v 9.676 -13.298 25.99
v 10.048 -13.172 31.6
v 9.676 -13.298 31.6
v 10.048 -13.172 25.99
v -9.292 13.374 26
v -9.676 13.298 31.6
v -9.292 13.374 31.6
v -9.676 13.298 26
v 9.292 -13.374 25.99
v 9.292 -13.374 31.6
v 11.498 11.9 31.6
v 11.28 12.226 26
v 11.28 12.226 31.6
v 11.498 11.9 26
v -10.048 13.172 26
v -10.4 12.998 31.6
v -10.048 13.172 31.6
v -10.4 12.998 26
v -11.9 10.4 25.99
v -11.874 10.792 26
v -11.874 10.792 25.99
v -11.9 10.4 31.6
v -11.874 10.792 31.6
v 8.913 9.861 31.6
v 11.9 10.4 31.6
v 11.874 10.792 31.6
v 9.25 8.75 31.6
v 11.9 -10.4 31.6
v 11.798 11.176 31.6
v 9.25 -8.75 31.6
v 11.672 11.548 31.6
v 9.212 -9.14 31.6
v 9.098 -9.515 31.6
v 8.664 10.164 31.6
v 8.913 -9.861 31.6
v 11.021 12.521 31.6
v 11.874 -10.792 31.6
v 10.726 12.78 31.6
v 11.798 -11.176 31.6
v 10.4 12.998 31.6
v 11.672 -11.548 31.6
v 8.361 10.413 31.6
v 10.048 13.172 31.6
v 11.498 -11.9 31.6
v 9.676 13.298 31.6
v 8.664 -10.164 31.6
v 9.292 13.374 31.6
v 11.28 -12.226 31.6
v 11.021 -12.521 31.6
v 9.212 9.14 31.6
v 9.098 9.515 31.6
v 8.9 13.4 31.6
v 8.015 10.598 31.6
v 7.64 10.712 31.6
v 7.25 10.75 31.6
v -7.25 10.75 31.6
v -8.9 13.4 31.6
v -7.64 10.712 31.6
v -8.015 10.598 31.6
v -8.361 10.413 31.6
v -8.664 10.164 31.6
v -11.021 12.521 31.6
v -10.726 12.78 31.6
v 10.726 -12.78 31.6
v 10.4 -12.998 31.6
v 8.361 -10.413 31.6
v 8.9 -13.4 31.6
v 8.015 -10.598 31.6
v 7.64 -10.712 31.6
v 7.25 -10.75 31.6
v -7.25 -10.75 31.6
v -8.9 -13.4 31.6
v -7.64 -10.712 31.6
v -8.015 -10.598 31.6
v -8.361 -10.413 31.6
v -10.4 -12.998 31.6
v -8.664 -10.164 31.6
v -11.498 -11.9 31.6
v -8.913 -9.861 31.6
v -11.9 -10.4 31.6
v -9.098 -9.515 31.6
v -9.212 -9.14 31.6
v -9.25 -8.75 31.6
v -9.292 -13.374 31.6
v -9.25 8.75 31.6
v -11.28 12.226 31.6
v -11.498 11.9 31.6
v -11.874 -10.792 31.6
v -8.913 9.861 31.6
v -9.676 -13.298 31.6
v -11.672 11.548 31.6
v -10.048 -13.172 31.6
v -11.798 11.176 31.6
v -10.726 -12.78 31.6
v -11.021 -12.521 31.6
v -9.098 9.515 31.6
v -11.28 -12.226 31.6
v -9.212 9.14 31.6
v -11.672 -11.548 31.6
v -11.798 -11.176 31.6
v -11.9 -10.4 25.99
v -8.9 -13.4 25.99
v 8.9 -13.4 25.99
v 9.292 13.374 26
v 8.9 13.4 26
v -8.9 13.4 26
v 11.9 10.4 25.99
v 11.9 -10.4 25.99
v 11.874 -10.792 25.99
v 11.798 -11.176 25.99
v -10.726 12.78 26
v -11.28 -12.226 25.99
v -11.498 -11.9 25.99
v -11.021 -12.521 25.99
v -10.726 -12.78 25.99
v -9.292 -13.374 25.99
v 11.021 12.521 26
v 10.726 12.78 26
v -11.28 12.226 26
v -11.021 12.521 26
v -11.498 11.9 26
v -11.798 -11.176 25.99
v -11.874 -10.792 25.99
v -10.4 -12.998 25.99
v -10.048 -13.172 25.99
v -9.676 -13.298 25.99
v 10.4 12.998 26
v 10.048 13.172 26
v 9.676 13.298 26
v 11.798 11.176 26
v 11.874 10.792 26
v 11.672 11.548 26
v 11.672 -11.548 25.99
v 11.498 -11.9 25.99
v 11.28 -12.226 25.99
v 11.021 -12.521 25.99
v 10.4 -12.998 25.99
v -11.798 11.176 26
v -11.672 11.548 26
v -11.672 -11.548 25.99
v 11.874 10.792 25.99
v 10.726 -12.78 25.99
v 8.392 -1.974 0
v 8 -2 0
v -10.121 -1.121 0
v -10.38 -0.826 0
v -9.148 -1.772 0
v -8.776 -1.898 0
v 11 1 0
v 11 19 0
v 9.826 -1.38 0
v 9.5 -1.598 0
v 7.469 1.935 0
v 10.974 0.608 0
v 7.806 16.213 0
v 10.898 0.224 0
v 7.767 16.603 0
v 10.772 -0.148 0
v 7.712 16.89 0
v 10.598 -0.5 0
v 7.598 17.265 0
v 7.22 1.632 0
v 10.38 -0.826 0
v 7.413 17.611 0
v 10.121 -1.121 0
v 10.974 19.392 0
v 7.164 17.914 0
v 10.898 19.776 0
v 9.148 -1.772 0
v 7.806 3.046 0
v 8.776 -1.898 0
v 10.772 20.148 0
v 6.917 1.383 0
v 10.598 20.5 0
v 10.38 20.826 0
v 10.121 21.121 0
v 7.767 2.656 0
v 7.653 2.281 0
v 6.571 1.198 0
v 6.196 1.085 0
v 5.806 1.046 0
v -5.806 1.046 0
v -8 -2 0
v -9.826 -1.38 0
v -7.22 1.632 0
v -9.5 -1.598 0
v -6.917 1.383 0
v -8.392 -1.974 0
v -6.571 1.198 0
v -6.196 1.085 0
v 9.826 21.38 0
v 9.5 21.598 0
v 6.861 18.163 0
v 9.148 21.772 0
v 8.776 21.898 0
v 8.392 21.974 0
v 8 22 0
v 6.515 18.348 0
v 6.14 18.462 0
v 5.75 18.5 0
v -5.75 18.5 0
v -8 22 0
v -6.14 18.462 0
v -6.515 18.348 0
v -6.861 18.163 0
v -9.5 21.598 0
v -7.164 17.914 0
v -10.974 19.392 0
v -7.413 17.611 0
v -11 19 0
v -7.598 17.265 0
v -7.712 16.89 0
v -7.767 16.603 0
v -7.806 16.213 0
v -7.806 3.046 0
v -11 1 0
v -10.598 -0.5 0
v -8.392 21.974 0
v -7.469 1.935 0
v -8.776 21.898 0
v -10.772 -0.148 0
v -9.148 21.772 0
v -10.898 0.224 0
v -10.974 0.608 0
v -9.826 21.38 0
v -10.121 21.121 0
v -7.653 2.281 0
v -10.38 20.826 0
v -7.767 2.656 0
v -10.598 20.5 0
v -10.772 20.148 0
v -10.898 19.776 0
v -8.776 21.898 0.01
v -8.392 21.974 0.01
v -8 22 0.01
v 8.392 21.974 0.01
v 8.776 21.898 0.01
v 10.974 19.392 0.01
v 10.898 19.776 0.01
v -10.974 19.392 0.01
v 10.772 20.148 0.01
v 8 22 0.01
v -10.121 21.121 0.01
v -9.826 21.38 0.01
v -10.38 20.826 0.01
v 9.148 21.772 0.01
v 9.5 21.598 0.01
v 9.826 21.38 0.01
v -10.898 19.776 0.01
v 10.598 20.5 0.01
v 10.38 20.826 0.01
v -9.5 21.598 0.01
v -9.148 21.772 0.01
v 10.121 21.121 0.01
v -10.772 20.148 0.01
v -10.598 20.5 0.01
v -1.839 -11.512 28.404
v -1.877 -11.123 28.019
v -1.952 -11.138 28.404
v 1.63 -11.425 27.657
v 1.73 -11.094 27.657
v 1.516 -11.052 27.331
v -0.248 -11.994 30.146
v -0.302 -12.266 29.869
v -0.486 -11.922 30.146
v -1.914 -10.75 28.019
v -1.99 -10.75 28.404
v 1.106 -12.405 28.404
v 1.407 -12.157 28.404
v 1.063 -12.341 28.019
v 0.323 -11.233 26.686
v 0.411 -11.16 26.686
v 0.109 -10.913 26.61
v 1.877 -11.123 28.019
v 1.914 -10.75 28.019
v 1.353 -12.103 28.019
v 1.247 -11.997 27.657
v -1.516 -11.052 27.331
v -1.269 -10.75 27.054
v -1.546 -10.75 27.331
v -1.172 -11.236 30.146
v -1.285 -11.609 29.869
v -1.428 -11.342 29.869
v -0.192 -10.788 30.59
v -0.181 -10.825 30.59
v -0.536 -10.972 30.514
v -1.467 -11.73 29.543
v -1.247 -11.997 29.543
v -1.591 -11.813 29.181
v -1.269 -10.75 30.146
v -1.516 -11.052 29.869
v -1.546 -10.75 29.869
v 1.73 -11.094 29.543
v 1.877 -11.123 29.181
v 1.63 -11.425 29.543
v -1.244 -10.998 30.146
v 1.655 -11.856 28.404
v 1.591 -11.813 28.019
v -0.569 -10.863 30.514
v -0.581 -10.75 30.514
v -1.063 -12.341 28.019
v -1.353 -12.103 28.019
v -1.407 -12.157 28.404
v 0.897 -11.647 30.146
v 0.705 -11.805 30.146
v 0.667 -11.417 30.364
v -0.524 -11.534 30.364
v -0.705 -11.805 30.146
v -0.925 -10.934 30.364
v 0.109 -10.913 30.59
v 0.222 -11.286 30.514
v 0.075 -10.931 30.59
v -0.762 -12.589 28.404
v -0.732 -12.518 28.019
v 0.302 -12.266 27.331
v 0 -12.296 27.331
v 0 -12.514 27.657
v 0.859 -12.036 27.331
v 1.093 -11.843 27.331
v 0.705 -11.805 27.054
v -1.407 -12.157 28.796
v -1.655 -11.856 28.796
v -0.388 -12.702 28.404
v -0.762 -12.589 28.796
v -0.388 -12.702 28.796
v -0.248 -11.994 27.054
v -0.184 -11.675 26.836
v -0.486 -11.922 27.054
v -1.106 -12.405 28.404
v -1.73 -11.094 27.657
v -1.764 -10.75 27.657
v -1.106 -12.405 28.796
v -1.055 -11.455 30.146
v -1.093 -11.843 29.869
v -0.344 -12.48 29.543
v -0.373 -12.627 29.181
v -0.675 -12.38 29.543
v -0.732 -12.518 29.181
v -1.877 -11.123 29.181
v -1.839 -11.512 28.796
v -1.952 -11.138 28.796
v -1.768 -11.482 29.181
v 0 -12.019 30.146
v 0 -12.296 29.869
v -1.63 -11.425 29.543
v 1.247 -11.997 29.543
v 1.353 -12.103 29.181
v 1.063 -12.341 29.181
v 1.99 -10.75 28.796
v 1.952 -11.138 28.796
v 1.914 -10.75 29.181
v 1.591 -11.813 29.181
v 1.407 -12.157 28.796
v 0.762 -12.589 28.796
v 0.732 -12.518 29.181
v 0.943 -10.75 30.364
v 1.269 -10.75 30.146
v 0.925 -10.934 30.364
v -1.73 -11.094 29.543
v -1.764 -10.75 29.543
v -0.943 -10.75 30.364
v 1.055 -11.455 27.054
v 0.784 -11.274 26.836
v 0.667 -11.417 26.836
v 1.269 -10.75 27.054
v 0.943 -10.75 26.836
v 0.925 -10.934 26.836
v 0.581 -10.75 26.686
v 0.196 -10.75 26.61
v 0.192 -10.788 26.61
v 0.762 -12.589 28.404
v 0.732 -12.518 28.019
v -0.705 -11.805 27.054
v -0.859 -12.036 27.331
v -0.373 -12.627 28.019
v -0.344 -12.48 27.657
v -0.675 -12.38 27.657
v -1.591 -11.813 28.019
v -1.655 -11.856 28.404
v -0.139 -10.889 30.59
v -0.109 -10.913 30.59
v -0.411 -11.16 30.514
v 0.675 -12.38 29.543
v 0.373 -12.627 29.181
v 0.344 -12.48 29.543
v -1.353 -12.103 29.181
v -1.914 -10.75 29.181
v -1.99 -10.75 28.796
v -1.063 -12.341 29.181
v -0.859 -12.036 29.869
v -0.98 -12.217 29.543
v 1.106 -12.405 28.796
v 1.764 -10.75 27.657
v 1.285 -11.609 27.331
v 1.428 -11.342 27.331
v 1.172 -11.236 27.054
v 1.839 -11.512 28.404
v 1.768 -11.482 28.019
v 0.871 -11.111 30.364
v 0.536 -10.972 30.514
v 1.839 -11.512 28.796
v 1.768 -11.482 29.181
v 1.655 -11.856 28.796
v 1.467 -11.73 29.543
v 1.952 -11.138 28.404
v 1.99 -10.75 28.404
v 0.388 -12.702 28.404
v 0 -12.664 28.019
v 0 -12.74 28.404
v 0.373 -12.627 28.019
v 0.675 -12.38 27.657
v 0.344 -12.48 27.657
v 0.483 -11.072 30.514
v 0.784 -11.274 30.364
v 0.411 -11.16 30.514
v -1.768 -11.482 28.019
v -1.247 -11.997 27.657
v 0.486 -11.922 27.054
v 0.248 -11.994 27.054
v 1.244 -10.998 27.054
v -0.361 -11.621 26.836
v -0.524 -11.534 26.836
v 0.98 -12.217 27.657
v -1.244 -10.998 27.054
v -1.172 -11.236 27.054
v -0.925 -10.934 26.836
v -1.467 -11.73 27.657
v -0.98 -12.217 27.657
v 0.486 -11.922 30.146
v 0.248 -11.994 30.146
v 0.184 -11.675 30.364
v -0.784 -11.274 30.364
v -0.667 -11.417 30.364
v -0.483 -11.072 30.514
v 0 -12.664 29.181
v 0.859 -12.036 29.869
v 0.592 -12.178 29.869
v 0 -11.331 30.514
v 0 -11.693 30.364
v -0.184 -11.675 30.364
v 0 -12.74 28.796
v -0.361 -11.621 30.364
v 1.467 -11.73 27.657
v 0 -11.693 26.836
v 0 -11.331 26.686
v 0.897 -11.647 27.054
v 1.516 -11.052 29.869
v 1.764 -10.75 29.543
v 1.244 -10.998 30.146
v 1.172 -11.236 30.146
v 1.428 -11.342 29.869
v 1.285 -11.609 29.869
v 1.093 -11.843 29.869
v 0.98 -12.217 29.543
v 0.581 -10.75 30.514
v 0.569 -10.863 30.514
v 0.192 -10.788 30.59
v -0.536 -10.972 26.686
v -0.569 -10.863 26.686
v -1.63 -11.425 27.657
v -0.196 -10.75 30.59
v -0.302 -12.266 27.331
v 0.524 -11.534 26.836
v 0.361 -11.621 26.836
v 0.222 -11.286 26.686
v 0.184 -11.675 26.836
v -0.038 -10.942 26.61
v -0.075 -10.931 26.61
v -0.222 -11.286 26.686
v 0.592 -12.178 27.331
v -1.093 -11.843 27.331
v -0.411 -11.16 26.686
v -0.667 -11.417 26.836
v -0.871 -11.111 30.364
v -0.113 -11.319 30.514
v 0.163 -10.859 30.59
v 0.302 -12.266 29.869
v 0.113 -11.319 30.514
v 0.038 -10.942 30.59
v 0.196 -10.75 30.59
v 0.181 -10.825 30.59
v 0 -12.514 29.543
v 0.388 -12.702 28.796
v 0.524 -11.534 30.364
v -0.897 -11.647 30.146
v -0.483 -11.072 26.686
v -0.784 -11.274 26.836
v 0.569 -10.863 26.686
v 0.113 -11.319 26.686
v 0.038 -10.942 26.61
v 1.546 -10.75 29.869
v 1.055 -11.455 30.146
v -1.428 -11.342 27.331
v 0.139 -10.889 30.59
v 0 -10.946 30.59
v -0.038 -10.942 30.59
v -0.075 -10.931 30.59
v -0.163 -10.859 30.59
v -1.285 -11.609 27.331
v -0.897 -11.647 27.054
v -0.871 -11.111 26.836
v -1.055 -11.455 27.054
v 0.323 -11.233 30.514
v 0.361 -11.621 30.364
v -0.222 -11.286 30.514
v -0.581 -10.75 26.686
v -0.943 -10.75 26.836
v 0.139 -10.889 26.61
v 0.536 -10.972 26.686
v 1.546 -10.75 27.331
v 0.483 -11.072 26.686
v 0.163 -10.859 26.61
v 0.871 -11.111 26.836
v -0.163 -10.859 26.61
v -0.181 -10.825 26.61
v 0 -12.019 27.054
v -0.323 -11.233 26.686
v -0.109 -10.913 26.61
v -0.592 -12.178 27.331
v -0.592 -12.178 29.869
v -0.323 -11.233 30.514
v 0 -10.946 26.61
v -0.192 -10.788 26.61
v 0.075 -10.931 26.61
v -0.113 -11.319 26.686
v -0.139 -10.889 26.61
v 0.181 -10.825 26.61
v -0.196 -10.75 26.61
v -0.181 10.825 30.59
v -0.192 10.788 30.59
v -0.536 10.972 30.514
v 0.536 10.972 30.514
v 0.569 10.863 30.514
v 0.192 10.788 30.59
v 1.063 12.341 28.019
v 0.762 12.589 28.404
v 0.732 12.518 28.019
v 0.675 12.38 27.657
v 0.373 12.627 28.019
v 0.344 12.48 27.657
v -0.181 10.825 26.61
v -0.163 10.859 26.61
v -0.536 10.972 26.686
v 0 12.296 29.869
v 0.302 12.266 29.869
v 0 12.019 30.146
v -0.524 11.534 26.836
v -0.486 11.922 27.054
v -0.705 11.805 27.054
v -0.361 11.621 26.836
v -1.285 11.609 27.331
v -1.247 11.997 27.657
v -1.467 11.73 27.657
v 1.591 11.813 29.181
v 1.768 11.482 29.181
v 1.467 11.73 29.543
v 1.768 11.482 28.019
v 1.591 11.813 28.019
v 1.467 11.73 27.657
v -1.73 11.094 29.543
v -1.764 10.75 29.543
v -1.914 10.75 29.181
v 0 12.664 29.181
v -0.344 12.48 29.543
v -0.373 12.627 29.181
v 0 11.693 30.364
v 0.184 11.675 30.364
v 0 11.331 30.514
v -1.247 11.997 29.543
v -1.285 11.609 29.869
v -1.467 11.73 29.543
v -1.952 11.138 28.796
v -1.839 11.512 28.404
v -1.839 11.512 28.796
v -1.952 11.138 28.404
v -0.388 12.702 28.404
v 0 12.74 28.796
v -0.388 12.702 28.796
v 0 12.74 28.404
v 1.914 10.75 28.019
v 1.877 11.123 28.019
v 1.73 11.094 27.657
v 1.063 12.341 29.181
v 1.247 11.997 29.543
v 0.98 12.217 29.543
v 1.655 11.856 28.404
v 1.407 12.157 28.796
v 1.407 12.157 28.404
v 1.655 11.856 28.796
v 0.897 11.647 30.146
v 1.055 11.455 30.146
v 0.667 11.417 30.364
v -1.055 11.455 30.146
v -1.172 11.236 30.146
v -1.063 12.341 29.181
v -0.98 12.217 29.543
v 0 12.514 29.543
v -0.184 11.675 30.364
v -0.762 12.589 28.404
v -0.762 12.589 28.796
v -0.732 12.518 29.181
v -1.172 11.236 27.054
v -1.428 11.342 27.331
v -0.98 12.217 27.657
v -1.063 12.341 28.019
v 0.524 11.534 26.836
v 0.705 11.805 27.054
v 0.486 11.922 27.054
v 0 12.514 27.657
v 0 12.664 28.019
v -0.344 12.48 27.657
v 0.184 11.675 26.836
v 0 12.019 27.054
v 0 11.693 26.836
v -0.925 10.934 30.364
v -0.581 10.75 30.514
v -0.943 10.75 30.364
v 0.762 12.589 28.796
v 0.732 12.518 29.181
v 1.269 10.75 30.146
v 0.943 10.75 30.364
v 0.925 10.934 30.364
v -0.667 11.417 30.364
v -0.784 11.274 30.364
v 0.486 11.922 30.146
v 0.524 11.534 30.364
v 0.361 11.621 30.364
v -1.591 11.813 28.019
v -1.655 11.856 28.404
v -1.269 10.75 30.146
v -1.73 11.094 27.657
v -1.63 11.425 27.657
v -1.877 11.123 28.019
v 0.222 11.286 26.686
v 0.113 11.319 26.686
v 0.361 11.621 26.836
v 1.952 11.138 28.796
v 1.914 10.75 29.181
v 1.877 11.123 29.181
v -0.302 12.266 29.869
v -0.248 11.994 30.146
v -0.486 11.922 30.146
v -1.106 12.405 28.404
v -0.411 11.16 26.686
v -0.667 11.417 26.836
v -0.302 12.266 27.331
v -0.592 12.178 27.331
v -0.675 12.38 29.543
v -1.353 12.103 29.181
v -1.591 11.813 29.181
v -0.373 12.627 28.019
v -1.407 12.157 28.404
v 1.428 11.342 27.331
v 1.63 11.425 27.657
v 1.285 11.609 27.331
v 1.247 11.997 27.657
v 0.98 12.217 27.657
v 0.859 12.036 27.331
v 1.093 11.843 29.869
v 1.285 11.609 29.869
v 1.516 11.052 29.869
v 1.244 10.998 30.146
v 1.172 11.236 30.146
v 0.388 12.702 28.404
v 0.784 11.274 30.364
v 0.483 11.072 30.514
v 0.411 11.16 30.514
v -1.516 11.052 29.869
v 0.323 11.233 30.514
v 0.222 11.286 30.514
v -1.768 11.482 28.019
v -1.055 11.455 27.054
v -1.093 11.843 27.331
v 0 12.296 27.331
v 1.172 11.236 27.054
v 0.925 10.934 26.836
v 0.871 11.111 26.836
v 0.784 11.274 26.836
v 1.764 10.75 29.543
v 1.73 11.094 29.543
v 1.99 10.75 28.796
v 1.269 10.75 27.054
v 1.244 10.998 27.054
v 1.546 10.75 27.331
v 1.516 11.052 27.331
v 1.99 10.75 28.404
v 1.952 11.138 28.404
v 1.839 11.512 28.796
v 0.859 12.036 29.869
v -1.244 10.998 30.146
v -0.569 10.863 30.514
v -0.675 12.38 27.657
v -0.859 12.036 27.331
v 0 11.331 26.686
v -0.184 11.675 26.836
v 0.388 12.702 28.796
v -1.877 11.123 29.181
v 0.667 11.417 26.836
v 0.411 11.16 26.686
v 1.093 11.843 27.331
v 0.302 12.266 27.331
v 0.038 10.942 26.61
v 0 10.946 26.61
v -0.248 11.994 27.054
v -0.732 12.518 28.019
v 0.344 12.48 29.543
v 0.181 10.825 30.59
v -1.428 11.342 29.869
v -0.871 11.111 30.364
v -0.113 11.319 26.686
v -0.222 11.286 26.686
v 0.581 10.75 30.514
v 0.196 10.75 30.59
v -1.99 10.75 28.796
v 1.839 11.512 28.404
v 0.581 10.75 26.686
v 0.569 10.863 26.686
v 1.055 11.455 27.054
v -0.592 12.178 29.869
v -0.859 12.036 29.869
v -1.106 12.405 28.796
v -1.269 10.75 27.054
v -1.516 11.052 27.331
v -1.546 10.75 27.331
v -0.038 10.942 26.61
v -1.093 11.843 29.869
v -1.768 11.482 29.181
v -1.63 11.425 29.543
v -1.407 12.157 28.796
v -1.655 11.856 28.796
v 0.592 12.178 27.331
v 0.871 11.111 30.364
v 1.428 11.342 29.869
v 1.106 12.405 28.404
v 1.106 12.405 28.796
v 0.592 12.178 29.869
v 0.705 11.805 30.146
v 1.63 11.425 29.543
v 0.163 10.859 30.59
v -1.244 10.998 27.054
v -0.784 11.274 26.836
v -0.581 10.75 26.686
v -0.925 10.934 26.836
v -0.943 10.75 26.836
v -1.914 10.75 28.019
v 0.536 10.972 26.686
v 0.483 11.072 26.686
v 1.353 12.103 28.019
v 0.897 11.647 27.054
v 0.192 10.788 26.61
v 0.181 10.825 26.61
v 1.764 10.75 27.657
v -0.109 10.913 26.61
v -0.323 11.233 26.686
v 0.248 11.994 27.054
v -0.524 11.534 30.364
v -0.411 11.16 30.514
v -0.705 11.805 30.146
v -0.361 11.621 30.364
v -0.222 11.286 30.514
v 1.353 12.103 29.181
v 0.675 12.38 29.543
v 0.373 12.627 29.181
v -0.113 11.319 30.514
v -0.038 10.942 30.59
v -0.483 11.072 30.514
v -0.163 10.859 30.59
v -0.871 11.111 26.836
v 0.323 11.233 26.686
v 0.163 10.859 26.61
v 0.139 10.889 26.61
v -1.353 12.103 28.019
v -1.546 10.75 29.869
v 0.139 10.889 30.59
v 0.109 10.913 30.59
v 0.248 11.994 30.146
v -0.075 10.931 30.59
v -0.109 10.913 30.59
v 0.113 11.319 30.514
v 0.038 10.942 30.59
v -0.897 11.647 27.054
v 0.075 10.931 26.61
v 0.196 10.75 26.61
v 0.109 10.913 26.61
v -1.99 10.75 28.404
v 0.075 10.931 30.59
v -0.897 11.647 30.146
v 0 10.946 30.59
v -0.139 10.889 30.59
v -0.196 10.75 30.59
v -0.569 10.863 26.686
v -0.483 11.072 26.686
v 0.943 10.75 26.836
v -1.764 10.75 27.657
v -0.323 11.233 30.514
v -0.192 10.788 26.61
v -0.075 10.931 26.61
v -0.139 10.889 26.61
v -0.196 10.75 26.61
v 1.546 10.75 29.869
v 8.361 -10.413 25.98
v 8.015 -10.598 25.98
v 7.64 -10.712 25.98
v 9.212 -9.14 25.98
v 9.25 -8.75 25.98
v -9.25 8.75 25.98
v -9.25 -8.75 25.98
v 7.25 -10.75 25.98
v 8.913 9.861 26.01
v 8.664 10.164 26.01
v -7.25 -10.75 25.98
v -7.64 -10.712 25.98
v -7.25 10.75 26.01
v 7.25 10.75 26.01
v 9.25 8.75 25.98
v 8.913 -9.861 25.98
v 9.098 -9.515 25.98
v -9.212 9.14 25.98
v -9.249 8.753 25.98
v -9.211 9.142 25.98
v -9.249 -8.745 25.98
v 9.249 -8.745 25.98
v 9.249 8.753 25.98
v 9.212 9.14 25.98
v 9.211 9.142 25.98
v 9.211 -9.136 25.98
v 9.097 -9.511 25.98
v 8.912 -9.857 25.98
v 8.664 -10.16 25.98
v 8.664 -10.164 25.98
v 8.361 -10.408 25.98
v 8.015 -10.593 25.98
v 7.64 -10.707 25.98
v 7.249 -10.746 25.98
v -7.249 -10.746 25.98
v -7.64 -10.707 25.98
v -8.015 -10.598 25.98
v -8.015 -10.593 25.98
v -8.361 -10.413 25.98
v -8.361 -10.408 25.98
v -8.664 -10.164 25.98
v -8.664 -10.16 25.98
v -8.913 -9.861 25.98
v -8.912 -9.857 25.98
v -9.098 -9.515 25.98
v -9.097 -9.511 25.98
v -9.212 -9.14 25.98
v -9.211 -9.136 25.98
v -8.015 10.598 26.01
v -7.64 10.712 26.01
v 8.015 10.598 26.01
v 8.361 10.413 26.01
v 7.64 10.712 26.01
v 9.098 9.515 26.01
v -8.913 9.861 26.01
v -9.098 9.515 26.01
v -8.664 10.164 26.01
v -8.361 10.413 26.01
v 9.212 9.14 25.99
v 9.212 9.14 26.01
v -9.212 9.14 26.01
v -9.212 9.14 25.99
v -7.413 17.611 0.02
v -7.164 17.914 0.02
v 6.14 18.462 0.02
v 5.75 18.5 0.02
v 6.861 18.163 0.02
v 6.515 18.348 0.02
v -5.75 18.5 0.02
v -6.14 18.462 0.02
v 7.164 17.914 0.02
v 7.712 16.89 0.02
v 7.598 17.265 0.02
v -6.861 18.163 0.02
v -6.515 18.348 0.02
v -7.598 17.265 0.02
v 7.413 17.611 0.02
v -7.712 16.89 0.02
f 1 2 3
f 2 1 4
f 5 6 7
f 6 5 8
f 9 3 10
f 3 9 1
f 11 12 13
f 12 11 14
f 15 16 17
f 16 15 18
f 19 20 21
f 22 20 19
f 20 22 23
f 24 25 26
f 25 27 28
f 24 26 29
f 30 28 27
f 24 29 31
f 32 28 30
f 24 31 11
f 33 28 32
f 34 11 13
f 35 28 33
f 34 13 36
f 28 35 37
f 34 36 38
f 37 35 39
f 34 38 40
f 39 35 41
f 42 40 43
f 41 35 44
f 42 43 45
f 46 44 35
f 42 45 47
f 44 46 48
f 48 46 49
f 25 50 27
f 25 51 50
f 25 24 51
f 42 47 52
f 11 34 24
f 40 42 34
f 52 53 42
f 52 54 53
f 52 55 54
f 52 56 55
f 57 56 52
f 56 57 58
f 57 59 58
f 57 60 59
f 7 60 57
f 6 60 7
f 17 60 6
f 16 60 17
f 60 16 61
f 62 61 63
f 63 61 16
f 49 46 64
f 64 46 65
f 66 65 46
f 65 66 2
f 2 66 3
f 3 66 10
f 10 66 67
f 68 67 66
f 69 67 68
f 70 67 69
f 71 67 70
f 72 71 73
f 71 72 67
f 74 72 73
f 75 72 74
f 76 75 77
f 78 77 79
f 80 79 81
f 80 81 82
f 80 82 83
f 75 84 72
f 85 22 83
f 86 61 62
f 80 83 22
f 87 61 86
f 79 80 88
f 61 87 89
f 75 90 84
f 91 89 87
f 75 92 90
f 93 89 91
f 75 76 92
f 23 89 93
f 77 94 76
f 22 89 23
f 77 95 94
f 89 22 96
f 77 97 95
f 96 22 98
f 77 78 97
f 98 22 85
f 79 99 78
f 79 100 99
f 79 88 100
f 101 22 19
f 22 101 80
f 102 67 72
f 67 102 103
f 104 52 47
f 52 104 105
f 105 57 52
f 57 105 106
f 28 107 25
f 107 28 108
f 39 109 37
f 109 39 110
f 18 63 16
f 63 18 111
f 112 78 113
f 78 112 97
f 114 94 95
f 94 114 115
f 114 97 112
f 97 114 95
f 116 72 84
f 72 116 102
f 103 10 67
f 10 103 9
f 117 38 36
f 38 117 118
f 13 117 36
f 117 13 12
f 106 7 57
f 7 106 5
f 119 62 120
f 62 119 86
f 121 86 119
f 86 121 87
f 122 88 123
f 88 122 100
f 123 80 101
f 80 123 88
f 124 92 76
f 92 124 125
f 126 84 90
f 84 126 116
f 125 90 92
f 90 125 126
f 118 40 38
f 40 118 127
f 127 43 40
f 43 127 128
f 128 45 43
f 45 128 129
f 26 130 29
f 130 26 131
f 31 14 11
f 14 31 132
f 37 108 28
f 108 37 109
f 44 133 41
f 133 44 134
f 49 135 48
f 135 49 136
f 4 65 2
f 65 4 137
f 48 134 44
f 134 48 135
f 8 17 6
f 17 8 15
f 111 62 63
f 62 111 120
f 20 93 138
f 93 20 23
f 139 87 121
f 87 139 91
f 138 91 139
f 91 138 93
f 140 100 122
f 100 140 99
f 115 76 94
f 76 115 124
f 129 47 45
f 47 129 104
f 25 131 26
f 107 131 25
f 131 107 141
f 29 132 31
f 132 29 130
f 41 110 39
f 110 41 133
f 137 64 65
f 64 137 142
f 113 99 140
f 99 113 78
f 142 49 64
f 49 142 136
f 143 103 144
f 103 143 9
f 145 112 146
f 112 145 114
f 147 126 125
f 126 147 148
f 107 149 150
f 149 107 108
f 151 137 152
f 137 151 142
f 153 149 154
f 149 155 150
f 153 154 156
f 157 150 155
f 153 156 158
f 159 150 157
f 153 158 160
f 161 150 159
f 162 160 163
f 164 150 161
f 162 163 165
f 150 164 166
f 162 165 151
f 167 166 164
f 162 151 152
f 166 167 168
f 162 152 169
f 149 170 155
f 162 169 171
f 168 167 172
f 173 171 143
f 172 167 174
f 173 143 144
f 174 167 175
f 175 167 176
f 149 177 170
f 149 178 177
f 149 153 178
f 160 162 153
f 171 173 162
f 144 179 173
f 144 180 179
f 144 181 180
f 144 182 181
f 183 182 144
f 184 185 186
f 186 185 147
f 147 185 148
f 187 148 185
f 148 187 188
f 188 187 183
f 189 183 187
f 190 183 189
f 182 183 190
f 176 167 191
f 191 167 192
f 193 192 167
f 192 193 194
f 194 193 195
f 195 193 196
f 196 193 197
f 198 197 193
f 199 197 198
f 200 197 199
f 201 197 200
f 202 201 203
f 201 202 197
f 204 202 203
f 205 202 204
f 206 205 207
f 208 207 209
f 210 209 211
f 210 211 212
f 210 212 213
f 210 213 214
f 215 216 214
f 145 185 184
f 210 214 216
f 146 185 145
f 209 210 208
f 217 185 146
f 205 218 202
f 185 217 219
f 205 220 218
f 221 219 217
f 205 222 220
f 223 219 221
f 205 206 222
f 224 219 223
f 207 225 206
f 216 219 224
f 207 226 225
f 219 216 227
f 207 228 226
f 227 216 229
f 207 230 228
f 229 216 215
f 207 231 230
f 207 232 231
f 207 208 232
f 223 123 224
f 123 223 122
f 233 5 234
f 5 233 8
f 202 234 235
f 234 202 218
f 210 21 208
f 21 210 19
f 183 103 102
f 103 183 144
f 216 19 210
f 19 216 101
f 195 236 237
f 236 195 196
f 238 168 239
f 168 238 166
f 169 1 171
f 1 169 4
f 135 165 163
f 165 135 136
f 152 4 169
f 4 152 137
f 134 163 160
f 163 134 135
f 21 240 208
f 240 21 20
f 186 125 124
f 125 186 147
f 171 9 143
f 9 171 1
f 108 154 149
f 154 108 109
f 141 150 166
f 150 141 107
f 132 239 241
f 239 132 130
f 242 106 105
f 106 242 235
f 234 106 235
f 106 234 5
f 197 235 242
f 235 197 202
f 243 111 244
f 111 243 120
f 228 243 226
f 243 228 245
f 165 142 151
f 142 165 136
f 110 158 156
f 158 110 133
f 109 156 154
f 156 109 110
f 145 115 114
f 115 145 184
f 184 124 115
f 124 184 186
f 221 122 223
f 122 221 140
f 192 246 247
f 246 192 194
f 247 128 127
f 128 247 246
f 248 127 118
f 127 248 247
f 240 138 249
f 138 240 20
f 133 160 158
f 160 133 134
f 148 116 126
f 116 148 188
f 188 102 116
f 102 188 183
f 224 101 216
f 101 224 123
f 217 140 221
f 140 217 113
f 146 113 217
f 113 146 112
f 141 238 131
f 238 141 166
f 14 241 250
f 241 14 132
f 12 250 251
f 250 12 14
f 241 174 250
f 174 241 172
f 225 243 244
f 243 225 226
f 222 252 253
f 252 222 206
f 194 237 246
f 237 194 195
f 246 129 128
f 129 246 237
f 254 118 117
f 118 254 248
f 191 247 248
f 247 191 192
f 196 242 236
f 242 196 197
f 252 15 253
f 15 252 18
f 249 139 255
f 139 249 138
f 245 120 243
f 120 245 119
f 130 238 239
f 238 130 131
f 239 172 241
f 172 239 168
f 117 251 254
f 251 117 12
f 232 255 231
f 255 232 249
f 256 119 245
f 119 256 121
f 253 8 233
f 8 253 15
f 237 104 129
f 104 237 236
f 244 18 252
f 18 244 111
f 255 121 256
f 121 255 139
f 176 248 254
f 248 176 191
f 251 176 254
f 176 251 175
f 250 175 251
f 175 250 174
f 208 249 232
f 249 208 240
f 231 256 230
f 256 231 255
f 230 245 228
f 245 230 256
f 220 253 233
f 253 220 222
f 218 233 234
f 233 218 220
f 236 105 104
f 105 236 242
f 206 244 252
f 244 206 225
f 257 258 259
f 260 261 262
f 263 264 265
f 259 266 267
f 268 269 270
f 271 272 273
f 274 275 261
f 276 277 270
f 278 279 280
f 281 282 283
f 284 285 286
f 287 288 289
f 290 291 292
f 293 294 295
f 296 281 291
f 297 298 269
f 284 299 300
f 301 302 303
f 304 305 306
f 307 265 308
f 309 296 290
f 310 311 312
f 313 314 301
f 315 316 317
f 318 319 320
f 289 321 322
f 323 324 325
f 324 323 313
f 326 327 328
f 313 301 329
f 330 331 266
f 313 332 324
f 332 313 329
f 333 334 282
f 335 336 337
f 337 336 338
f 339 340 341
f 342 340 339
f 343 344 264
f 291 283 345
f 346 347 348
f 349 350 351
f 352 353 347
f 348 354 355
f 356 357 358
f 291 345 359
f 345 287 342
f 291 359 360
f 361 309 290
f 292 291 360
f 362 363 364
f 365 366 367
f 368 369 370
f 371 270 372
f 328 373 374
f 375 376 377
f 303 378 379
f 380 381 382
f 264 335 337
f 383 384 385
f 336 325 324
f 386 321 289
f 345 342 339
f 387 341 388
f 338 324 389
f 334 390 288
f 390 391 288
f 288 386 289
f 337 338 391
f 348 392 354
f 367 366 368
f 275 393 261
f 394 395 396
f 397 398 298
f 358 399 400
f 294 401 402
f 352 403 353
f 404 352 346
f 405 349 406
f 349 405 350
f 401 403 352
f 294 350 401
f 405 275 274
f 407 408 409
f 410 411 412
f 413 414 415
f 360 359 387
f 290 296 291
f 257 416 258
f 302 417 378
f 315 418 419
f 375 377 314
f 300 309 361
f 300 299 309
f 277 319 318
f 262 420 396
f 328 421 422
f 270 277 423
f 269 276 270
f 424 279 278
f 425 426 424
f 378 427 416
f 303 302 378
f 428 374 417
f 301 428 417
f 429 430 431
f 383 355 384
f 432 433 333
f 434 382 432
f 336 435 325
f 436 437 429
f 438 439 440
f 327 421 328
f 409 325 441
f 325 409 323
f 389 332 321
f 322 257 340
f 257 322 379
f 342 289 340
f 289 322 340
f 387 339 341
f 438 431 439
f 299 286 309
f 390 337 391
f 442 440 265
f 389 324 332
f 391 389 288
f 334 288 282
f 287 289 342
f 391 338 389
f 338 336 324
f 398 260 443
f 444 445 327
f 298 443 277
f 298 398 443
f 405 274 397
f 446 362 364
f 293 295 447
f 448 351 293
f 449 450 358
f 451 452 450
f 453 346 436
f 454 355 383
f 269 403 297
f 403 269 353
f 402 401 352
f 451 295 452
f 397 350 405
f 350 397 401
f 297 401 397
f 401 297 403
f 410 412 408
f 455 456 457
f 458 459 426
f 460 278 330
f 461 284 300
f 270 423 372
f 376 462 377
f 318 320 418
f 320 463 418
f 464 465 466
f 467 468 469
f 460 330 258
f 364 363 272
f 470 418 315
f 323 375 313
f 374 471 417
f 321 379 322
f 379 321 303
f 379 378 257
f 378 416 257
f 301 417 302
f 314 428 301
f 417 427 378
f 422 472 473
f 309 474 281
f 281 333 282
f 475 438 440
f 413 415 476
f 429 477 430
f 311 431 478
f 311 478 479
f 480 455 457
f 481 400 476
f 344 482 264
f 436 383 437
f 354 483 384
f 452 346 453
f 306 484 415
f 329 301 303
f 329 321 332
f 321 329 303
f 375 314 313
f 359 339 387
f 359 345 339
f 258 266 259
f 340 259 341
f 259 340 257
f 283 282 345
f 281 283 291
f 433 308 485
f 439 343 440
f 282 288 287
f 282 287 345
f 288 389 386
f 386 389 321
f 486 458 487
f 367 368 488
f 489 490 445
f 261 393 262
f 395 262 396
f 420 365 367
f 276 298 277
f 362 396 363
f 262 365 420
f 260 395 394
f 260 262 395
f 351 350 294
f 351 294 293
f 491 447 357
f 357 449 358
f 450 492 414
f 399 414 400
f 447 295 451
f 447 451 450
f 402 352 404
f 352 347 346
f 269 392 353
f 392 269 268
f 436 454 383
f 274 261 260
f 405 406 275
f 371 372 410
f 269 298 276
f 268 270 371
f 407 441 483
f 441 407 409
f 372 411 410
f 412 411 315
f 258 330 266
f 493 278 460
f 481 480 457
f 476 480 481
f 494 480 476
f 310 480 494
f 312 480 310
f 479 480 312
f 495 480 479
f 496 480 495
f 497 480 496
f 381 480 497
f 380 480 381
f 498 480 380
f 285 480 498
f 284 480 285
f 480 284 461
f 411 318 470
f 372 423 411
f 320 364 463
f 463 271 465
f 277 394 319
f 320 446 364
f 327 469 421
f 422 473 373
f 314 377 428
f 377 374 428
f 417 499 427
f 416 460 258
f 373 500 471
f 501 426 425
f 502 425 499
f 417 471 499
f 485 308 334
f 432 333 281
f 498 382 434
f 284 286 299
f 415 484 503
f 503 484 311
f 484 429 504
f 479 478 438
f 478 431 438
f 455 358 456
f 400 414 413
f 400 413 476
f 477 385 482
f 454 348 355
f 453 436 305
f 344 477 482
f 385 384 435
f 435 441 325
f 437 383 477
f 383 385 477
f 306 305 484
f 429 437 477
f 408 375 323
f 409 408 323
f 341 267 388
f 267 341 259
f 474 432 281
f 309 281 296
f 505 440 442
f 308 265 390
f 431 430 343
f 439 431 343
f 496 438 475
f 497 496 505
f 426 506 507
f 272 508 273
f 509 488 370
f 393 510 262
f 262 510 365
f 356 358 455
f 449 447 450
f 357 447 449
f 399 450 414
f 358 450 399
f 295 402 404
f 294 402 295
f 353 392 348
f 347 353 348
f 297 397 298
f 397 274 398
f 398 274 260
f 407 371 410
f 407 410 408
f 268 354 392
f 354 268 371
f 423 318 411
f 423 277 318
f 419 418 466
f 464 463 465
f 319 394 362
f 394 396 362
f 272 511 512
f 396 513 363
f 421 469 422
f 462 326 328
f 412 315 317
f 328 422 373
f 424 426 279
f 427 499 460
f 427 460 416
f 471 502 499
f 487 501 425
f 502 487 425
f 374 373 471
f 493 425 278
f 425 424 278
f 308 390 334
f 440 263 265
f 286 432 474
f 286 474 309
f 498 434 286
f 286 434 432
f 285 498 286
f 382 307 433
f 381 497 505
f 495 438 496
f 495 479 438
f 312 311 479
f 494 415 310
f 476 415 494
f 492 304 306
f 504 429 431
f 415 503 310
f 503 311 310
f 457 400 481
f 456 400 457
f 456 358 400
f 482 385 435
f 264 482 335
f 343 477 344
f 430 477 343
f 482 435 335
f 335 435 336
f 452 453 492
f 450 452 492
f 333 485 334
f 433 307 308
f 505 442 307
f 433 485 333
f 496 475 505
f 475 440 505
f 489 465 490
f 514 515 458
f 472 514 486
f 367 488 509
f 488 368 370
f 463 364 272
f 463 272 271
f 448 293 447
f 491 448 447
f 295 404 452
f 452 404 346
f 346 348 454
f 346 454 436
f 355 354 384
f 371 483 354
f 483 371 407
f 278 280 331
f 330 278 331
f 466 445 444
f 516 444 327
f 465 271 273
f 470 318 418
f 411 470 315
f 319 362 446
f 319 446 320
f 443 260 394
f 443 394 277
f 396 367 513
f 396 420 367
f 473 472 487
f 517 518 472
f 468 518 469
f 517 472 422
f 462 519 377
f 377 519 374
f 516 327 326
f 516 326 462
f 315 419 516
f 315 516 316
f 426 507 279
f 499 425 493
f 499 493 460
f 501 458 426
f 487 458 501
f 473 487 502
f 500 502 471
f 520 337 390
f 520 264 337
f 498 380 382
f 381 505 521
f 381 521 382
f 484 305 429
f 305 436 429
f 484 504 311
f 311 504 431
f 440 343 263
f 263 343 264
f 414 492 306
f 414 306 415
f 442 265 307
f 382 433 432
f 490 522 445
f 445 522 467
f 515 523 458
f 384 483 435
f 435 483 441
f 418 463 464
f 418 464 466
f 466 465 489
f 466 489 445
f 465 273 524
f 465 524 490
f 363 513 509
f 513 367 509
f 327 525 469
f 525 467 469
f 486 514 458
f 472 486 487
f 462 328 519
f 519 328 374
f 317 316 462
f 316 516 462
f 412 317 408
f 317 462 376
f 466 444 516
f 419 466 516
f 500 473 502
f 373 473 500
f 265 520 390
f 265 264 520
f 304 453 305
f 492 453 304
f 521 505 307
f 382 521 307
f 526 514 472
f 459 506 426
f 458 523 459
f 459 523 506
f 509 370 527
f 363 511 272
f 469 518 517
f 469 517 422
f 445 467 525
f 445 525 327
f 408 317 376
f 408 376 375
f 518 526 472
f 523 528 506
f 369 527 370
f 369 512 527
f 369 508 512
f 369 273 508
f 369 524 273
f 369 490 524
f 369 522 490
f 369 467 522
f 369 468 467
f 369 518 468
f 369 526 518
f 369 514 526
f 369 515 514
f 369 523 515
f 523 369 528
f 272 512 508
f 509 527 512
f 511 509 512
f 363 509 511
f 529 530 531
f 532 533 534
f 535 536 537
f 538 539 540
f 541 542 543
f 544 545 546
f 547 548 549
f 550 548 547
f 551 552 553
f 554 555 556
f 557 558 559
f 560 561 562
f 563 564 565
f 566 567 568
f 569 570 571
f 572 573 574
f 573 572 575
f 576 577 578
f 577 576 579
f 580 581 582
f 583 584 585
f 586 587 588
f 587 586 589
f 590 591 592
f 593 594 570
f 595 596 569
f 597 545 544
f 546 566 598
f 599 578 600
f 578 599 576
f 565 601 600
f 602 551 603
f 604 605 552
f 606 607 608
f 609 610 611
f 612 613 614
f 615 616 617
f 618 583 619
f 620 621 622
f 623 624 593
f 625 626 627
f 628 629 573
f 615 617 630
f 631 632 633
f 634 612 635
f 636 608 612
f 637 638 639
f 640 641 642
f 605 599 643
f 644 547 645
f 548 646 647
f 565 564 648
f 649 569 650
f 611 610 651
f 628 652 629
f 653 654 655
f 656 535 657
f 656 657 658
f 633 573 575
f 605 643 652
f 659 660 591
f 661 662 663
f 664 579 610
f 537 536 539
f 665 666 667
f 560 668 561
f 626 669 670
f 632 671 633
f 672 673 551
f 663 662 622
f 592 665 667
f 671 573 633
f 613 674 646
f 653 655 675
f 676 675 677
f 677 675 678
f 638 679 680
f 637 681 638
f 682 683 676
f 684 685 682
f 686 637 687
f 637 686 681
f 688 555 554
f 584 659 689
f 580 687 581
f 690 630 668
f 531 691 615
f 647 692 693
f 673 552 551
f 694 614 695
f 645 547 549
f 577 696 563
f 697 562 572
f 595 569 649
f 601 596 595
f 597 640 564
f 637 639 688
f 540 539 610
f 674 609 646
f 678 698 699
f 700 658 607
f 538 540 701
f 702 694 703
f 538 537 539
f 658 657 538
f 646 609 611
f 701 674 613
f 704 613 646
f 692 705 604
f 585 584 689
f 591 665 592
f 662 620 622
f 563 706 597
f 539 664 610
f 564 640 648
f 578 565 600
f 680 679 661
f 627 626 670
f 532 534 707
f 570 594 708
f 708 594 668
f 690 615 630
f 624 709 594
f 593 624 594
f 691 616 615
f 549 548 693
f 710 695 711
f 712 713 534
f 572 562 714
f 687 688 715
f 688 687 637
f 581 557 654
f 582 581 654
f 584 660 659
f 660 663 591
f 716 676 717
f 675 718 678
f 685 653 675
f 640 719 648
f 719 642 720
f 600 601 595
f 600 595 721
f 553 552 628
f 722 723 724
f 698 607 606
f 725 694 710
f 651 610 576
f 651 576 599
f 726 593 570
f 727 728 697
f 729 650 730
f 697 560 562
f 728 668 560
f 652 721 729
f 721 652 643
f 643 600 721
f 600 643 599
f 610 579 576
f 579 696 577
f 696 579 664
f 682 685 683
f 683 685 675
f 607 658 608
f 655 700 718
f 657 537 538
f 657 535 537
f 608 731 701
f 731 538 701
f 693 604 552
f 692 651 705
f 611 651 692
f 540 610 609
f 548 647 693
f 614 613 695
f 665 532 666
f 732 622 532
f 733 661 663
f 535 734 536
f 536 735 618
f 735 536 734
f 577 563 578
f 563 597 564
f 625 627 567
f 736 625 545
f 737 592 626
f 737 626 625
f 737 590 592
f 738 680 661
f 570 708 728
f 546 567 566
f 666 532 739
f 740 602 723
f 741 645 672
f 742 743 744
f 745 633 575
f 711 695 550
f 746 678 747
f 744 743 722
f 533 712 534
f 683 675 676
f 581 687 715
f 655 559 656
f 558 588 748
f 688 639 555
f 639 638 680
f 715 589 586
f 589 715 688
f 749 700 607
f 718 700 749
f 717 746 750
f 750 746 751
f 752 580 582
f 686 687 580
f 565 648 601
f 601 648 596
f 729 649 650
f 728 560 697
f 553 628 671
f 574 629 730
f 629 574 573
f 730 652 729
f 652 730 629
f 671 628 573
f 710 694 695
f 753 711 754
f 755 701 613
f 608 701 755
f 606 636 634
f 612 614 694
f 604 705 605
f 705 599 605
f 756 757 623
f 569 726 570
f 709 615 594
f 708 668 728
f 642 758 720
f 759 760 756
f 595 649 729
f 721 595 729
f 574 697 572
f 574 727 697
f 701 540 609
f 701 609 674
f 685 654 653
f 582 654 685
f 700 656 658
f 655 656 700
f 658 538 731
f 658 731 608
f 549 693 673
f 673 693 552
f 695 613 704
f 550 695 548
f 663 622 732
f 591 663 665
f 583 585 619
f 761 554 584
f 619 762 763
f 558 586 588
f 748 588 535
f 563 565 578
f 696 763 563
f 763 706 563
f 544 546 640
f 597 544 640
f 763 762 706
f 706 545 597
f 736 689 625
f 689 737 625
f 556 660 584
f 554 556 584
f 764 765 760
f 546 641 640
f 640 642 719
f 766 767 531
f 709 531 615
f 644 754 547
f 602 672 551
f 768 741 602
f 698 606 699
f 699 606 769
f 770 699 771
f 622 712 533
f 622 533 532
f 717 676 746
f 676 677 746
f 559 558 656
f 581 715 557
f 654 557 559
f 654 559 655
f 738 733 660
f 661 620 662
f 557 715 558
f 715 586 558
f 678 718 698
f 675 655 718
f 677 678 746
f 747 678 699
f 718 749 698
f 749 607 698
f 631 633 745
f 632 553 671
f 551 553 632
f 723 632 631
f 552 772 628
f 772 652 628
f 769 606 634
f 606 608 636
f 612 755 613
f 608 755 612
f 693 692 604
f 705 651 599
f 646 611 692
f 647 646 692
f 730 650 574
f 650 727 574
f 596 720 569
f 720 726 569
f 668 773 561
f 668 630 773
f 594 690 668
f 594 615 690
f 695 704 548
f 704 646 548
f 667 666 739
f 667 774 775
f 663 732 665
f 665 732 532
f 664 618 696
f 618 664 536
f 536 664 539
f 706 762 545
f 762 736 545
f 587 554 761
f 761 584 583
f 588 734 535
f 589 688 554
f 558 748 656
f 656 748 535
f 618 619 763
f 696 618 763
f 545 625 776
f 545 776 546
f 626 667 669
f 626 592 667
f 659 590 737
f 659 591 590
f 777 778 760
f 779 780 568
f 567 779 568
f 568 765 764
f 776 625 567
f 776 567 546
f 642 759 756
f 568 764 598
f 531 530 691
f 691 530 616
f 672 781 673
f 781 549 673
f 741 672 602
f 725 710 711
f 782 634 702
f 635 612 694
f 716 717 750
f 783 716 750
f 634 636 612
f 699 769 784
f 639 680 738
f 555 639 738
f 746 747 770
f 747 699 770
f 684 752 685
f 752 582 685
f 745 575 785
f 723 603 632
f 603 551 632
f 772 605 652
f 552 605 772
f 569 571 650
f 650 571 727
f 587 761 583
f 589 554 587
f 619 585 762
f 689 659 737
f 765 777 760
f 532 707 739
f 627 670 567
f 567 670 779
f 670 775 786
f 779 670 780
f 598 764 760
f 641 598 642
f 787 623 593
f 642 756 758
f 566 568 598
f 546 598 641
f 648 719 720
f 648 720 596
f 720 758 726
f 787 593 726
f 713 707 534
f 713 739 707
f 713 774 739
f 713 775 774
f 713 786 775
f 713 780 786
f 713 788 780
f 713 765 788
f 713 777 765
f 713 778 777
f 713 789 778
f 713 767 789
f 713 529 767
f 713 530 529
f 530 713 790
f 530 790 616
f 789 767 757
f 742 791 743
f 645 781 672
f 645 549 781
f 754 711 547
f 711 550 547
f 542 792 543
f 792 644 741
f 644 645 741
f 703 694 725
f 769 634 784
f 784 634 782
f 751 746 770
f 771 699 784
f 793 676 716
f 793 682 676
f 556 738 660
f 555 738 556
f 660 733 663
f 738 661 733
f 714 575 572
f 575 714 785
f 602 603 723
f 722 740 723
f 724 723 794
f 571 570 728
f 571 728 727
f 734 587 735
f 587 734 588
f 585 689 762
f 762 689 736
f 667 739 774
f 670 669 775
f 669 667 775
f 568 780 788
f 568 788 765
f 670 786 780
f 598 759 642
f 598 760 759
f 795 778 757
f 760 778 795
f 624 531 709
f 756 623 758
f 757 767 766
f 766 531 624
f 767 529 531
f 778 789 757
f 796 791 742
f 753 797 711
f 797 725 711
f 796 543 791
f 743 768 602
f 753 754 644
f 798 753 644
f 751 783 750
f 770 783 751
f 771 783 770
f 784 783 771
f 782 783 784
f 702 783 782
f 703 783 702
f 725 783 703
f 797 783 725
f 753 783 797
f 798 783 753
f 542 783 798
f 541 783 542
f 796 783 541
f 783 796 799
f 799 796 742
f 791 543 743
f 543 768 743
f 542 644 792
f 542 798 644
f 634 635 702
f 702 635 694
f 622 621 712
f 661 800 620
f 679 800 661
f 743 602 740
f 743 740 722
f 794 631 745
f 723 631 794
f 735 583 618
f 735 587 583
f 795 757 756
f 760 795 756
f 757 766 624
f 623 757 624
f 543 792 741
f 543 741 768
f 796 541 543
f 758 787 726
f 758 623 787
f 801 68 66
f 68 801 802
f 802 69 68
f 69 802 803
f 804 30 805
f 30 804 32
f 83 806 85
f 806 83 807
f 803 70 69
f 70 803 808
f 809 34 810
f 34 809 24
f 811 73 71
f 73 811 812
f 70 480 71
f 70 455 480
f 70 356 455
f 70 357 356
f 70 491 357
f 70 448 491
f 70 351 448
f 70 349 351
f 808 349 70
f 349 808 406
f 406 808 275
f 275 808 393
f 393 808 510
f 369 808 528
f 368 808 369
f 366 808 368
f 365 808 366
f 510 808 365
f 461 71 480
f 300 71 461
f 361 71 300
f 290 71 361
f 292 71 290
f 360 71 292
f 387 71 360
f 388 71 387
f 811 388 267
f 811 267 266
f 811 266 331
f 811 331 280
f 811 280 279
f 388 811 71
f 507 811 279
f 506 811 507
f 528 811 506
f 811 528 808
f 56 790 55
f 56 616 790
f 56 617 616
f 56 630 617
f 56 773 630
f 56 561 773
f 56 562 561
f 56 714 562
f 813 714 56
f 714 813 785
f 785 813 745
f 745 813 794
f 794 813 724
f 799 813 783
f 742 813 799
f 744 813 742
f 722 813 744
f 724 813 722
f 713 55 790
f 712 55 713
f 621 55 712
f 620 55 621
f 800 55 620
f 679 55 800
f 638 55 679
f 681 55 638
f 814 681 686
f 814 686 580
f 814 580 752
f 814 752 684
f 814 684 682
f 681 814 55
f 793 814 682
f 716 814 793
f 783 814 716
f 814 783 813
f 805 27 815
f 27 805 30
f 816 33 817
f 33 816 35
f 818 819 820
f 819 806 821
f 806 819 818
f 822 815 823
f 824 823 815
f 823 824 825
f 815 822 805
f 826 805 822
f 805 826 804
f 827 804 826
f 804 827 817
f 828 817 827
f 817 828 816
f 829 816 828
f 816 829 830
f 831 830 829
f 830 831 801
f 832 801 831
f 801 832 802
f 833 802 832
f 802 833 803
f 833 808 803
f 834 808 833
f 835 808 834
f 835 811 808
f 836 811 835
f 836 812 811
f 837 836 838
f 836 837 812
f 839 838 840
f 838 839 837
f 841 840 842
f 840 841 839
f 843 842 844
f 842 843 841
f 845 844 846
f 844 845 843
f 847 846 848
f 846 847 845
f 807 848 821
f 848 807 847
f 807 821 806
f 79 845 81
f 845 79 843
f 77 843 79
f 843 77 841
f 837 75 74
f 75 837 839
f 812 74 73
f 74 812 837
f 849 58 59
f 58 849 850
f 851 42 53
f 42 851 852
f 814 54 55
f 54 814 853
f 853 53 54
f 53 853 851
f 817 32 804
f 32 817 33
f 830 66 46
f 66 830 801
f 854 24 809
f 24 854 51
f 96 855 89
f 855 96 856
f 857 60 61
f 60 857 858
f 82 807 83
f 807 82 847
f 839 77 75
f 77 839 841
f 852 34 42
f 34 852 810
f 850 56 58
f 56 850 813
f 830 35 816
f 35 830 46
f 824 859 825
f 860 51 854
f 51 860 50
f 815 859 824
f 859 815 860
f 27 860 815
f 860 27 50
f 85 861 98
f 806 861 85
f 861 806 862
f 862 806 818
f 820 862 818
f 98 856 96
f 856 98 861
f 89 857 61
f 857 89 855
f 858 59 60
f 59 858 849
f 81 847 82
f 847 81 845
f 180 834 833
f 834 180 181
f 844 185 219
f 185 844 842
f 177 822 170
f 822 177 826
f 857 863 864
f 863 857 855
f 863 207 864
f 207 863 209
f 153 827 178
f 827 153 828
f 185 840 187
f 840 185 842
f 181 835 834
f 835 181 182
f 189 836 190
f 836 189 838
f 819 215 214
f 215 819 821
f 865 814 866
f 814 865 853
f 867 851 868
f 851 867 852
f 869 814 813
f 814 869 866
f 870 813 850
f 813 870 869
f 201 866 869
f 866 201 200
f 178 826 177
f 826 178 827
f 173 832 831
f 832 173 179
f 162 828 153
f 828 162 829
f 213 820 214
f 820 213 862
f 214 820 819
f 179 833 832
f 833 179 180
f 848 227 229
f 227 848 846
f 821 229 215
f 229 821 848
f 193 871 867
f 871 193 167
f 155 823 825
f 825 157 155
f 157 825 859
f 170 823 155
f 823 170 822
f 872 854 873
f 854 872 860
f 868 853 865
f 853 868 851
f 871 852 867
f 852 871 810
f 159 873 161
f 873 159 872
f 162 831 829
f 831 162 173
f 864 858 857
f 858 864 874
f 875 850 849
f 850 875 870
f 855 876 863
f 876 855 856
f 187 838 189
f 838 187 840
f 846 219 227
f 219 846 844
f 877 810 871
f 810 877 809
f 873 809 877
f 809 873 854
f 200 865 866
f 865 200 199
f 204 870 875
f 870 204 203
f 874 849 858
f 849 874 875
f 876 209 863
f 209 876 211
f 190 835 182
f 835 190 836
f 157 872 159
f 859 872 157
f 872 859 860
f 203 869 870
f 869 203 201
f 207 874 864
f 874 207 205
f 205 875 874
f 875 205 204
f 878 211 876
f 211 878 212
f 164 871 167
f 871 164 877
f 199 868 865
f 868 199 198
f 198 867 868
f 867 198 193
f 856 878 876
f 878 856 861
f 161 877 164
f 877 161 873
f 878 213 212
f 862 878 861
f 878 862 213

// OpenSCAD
// =====================================================================
//  AquaFeeder -- calha de saida (encaixa por pressao no boss do tubo)
//  Joga a racao para frente e para longe do tubo (menos vapor subindo).
//  Imprimir COMO ESTA. Sem suporte. 3 paredes.
// =====================================================================
include <common.scad>

// Sensor de graos (opcional): abre dois furos de 3.4mm frente/tras para
// encaixar um LED IR de 3mm de um lado e um fototransistor do outro. O feixe
// atravessa o duto e cada grao que passa gera um pulso.
// Deixe false se nao vai usar sensor -- furo aberto deixa escapar racao.
sensor_holes = false;

socket_d = 5.6;                       // profundidade do encaixe
h_duct   = 26;                        // altura do duto
off_y    = 10;                        // deslocamento lateral (inclinacao)
sw       = 2.6;                       // parede do socket

sk_x = boss_x + 0.6 + 2*sw;           // 23.8
sk_y = boss_y + 0.6 + 2*sw;           // 26.8

module chute() {
    difference() {
        union() {
            translate([0, 0, h_duct]) rbox(sk_x, sk_y, socket_d, 3);
            hull() {
                translate([0, 0, h_duct - 0.01]) rbox(sk_x, sk_y, 0.01, 3);
                translate([0, off_y, 0])         rbox(22, 24, 0.01, 3);
            }
        }
        // cavidade do encaixe
        translate([0, 0, h_duct - eps])
            rbox(boss_x + 0.5 + fit, boss_y + 0.5 + fit, socket_d + 1, 2);
        // covinhas que travam nas meias-esferas do tubo
        for (s = [-1, 1])
            translate([0, s * (boss_y + 0.5)/2, h_duct + 2.6]) sphere(r = 2.0);
        // duto interno
        hull() {
            translate([0, 0, h_duct - 0.01]) rbox(boss_x + 0.5, boss_y + 0.5, 0.02, 2);
            translate([0, off_y, -1])        rbox(15.5, 17, 1.02, 2);
        }
        // furos do sensor optico (atravessam o duto)
        if (sensor_holes)
            translate([-16, off_y/2, 13]) rotate([0, 90, 0]) cylinder(d = 3.4, h = 32);
    }
}

chute();
